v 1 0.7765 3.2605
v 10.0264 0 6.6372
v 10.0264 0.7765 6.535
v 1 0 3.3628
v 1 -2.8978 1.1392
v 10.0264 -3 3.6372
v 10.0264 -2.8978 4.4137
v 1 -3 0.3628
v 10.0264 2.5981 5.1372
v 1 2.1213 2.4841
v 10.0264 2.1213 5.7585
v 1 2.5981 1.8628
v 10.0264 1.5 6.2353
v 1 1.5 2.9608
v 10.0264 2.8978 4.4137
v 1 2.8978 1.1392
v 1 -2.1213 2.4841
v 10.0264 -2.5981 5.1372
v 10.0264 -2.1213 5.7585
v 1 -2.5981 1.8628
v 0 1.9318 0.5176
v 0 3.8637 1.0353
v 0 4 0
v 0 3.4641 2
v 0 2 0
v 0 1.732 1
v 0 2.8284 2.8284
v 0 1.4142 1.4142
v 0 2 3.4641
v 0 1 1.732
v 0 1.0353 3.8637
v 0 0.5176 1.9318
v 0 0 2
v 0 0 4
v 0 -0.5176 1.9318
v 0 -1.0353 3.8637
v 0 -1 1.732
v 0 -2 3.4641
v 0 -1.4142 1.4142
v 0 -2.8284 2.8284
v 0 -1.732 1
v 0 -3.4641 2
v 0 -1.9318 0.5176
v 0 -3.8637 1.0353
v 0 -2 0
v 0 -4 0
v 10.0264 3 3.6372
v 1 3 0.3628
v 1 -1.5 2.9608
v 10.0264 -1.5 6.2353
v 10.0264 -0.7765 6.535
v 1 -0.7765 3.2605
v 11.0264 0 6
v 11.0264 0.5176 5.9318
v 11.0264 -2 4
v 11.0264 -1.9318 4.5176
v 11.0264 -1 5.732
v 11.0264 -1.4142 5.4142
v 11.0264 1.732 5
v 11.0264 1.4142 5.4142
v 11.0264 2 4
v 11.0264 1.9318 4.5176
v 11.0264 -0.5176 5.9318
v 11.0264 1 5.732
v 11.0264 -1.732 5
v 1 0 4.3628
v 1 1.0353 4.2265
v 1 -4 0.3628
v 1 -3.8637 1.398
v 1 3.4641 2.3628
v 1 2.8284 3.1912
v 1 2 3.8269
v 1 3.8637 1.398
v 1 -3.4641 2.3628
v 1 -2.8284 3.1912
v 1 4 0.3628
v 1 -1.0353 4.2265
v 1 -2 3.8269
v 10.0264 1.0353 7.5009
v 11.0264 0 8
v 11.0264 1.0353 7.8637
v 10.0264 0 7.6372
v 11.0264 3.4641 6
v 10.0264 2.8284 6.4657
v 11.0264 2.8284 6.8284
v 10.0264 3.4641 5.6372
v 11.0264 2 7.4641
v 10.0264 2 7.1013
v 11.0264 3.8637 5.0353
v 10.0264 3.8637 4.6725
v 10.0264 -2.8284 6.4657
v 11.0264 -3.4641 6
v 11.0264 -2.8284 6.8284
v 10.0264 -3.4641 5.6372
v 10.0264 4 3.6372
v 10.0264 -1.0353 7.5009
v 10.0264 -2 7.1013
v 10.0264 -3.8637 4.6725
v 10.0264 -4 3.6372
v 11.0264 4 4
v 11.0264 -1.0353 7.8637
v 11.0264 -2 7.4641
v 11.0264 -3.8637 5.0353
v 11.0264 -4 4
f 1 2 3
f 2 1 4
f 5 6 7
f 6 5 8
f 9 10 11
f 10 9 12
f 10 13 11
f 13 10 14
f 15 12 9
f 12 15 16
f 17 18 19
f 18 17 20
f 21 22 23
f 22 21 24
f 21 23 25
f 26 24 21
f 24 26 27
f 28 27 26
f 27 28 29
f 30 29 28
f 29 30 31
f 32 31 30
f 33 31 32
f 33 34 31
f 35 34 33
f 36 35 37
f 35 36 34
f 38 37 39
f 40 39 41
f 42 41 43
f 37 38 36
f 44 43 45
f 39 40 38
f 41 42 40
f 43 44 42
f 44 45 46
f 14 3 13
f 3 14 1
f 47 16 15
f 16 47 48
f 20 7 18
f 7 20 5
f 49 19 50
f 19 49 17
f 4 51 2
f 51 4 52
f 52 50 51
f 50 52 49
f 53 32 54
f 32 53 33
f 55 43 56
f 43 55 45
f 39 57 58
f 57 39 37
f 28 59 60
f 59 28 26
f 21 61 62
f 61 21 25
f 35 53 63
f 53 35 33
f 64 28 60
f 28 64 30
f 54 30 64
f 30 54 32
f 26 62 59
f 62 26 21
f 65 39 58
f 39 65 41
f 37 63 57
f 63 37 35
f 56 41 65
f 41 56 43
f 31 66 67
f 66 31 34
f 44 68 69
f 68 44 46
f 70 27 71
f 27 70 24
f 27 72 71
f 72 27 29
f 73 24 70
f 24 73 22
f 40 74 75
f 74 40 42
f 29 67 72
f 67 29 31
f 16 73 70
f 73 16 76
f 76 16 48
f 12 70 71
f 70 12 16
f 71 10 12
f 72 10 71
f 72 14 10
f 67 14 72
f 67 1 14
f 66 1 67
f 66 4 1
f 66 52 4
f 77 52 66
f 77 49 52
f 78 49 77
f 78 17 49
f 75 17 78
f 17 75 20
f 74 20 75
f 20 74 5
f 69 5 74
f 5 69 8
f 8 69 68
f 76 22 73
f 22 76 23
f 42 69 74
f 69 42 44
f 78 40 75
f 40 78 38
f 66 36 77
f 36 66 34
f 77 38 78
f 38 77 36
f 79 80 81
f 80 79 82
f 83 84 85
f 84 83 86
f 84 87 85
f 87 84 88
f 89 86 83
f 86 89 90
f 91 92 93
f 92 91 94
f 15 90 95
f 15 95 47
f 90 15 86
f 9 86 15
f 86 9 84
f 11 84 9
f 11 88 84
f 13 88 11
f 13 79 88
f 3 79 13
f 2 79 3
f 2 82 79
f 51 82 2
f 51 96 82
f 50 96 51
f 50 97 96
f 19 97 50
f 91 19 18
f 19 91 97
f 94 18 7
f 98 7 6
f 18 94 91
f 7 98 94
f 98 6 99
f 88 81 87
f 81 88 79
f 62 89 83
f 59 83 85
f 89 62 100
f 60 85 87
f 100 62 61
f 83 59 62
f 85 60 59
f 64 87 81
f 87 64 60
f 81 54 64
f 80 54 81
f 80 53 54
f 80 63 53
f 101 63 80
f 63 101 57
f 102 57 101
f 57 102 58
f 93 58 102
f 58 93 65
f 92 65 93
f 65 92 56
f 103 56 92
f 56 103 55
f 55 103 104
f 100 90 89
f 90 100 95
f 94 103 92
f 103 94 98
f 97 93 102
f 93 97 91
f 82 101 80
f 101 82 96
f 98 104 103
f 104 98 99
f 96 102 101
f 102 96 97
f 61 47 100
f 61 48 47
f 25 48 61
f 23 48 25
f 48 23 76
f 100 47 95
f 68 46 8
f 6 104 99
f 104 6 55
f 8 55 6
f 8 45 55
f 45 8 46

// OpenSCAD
// file: ../build_environments.scad
// build_environments.scad: modules to build level sections
//

module pool(diameter=10.0, wall_height=2.0, step_width=3.0, connections=[])
{
    difference() {
        union() {
        difference() {
            cylinder(h=0.5,r1=diameter+step_width,r2=diameter+step_width,$fn=48);
            translate([0,0,-0.1])
                cylinder(h=0.7,r1=diameter,r2=diameter,$fn=48);
        }
        difference() {
            cylinder(h=wall_height,r1=diameter+step_width+1.0,r2=diameter+step_width+1.0,$fn=48);
            translate([0,0,-0.1])
                cylinder(h=wall_height+0.2,r1=diameter+step_width,r2=diameter+step_width,$fn=48);
        }
        }
    
        for (c = connections)
        {
            rotate([0,90,0]) {
                angle = atan2(c[1],c[0]);
                rotate([-angle,0,0]) {
                    cylinder(h=diameter+5.0,r1=c[2],r2=c[2],$fn=48);
                }
            }
        }
    }
}

module straight(length=10.0, width=2.0, dy1=0.0, dy2=0.0, dz=0.0)
{
    dims = [0, 0, 0, 0, 0, (dz/length)];
    matrix = [
        [ 1, dims[0], dims[1], 0 ],
        [ dims[2], 1, dims[4], 0 ],
        [ dims[5], dims[3], 1, 0 ],
        [ 0, 0, 0, 1 ]
    ];
    multmatrix(matrix)
    difference() {
        translate([dy1,0,0])
        union() {
            rotate([0,90,0]) {
                difference() {
                    cylinder(h=(length-dy1-dy2),r1=width+1.0,r2=width+1.0,$fn=24);
                    translate([0,0,-0.1])
                        cylinder(h=(length-dy1-dy2+0.2),r1=width,r2=width,$fn=24);
                }
                difference() {
                    cylinder(h=1.0,r1=width+2.0,r2=width+2.0,$fn=24);
                    translate([0,0,-0.1])
                        cylinder(h=1.2,r1=width,r2=width,$fn=24);
                }
                translate([0,0,(length-dy1-dy2)-1.0]) {
                    difference() {
                        cylinder(h=1.0,r1=width+2.0,r2=width+2.0,$fn=24);
                        translate([0,0,-0.1])
                            cylinder(h=1.2,r1=width,r2=width,$fn=24);
                    }
                }
            }
        }
        translate([0,0,-(2*width+4.0)/2])
            cube([3*length,3*length,2*width+4.0],center=true);
    }
}

module curve(p0=[0,0], center=[0,0], dir=1, angle=0.0, width=2.0)
{
    radius = sqrt((p0[0]-center[0])*(p0[0]-center[0]) + (p0[1]-center[1])*(p0[1]-center[1]));
    if (dir == 0) {
        difference() {
            rotate([0,0,-90])
            difference() {
                rotate_extrude(angle = angle, convexity = 10, $fn=32)
                    translate([radius, 0, 0])
                        circle(r = width+1.0,$fn=24);
                rotate([0,0,-1.0])
                    rotate_extrude(angle = angle+2.0, convexity = 10, $fn=32)
                        translate([radius, 0, 0])
                            circle(r = width,$fn=24);
            }
            translate([0,0,-(2*width+4.0)/2])
                cube([5*radius,5*radius,2*width+4.0],center=true);
        }
    }
    else {
        difference() {
            rotate([0,0,90])
            difference() {
                rotate_extrude(angle = -angle, convexity = 10, $fn=32)
                    translate([radius, 0, 0])
                        circle(r = width+1.0,$fn=24);
                rotate([0,0,1.0])
                    rotate_extrude(angle = -angle-2.0, convexity = 10, $fn=32)
                        translate([radius, 0, 0])
                            circle(r = width,$fn=24);
            }
            translate([0,0,-(2*width+4.0)/2])
                cube([5*radius,5*radius,2*width+4.0],center=true);
        }
    }

}

// test pool
//pool(diameter=12.0000, wall_height=3.0000, step_width=3.0000, connections=[[0.0000,-26.0000,2.0000], [23.6074,0.0000,2.0000]]);

// test straight, slope
//straight(length=26.0000, width=2.0000, dy1=11.8322, dy2=6.7082, dz=0.0000);
//straight(length=29.1549, width=12.0000, dy1=0.0000, dy2=0.0000, dz=-15.0000);

// test curve
//curve(p0=[23.6074, 0.0000], center=[23.6074, 5.0000], dir=0, angle=60.1011, width=2.0000);
//curve(p0=[33.6426, 12.4219], center=[37.9771, 9.9295], dir=1, angle=120.4627, width=2.0000);
// main file
use <../build_environments.scad>;
straight(length=11.0264, width=2.0000, dy1=0.0000, dy2=0.0000, dz=4.0000);
